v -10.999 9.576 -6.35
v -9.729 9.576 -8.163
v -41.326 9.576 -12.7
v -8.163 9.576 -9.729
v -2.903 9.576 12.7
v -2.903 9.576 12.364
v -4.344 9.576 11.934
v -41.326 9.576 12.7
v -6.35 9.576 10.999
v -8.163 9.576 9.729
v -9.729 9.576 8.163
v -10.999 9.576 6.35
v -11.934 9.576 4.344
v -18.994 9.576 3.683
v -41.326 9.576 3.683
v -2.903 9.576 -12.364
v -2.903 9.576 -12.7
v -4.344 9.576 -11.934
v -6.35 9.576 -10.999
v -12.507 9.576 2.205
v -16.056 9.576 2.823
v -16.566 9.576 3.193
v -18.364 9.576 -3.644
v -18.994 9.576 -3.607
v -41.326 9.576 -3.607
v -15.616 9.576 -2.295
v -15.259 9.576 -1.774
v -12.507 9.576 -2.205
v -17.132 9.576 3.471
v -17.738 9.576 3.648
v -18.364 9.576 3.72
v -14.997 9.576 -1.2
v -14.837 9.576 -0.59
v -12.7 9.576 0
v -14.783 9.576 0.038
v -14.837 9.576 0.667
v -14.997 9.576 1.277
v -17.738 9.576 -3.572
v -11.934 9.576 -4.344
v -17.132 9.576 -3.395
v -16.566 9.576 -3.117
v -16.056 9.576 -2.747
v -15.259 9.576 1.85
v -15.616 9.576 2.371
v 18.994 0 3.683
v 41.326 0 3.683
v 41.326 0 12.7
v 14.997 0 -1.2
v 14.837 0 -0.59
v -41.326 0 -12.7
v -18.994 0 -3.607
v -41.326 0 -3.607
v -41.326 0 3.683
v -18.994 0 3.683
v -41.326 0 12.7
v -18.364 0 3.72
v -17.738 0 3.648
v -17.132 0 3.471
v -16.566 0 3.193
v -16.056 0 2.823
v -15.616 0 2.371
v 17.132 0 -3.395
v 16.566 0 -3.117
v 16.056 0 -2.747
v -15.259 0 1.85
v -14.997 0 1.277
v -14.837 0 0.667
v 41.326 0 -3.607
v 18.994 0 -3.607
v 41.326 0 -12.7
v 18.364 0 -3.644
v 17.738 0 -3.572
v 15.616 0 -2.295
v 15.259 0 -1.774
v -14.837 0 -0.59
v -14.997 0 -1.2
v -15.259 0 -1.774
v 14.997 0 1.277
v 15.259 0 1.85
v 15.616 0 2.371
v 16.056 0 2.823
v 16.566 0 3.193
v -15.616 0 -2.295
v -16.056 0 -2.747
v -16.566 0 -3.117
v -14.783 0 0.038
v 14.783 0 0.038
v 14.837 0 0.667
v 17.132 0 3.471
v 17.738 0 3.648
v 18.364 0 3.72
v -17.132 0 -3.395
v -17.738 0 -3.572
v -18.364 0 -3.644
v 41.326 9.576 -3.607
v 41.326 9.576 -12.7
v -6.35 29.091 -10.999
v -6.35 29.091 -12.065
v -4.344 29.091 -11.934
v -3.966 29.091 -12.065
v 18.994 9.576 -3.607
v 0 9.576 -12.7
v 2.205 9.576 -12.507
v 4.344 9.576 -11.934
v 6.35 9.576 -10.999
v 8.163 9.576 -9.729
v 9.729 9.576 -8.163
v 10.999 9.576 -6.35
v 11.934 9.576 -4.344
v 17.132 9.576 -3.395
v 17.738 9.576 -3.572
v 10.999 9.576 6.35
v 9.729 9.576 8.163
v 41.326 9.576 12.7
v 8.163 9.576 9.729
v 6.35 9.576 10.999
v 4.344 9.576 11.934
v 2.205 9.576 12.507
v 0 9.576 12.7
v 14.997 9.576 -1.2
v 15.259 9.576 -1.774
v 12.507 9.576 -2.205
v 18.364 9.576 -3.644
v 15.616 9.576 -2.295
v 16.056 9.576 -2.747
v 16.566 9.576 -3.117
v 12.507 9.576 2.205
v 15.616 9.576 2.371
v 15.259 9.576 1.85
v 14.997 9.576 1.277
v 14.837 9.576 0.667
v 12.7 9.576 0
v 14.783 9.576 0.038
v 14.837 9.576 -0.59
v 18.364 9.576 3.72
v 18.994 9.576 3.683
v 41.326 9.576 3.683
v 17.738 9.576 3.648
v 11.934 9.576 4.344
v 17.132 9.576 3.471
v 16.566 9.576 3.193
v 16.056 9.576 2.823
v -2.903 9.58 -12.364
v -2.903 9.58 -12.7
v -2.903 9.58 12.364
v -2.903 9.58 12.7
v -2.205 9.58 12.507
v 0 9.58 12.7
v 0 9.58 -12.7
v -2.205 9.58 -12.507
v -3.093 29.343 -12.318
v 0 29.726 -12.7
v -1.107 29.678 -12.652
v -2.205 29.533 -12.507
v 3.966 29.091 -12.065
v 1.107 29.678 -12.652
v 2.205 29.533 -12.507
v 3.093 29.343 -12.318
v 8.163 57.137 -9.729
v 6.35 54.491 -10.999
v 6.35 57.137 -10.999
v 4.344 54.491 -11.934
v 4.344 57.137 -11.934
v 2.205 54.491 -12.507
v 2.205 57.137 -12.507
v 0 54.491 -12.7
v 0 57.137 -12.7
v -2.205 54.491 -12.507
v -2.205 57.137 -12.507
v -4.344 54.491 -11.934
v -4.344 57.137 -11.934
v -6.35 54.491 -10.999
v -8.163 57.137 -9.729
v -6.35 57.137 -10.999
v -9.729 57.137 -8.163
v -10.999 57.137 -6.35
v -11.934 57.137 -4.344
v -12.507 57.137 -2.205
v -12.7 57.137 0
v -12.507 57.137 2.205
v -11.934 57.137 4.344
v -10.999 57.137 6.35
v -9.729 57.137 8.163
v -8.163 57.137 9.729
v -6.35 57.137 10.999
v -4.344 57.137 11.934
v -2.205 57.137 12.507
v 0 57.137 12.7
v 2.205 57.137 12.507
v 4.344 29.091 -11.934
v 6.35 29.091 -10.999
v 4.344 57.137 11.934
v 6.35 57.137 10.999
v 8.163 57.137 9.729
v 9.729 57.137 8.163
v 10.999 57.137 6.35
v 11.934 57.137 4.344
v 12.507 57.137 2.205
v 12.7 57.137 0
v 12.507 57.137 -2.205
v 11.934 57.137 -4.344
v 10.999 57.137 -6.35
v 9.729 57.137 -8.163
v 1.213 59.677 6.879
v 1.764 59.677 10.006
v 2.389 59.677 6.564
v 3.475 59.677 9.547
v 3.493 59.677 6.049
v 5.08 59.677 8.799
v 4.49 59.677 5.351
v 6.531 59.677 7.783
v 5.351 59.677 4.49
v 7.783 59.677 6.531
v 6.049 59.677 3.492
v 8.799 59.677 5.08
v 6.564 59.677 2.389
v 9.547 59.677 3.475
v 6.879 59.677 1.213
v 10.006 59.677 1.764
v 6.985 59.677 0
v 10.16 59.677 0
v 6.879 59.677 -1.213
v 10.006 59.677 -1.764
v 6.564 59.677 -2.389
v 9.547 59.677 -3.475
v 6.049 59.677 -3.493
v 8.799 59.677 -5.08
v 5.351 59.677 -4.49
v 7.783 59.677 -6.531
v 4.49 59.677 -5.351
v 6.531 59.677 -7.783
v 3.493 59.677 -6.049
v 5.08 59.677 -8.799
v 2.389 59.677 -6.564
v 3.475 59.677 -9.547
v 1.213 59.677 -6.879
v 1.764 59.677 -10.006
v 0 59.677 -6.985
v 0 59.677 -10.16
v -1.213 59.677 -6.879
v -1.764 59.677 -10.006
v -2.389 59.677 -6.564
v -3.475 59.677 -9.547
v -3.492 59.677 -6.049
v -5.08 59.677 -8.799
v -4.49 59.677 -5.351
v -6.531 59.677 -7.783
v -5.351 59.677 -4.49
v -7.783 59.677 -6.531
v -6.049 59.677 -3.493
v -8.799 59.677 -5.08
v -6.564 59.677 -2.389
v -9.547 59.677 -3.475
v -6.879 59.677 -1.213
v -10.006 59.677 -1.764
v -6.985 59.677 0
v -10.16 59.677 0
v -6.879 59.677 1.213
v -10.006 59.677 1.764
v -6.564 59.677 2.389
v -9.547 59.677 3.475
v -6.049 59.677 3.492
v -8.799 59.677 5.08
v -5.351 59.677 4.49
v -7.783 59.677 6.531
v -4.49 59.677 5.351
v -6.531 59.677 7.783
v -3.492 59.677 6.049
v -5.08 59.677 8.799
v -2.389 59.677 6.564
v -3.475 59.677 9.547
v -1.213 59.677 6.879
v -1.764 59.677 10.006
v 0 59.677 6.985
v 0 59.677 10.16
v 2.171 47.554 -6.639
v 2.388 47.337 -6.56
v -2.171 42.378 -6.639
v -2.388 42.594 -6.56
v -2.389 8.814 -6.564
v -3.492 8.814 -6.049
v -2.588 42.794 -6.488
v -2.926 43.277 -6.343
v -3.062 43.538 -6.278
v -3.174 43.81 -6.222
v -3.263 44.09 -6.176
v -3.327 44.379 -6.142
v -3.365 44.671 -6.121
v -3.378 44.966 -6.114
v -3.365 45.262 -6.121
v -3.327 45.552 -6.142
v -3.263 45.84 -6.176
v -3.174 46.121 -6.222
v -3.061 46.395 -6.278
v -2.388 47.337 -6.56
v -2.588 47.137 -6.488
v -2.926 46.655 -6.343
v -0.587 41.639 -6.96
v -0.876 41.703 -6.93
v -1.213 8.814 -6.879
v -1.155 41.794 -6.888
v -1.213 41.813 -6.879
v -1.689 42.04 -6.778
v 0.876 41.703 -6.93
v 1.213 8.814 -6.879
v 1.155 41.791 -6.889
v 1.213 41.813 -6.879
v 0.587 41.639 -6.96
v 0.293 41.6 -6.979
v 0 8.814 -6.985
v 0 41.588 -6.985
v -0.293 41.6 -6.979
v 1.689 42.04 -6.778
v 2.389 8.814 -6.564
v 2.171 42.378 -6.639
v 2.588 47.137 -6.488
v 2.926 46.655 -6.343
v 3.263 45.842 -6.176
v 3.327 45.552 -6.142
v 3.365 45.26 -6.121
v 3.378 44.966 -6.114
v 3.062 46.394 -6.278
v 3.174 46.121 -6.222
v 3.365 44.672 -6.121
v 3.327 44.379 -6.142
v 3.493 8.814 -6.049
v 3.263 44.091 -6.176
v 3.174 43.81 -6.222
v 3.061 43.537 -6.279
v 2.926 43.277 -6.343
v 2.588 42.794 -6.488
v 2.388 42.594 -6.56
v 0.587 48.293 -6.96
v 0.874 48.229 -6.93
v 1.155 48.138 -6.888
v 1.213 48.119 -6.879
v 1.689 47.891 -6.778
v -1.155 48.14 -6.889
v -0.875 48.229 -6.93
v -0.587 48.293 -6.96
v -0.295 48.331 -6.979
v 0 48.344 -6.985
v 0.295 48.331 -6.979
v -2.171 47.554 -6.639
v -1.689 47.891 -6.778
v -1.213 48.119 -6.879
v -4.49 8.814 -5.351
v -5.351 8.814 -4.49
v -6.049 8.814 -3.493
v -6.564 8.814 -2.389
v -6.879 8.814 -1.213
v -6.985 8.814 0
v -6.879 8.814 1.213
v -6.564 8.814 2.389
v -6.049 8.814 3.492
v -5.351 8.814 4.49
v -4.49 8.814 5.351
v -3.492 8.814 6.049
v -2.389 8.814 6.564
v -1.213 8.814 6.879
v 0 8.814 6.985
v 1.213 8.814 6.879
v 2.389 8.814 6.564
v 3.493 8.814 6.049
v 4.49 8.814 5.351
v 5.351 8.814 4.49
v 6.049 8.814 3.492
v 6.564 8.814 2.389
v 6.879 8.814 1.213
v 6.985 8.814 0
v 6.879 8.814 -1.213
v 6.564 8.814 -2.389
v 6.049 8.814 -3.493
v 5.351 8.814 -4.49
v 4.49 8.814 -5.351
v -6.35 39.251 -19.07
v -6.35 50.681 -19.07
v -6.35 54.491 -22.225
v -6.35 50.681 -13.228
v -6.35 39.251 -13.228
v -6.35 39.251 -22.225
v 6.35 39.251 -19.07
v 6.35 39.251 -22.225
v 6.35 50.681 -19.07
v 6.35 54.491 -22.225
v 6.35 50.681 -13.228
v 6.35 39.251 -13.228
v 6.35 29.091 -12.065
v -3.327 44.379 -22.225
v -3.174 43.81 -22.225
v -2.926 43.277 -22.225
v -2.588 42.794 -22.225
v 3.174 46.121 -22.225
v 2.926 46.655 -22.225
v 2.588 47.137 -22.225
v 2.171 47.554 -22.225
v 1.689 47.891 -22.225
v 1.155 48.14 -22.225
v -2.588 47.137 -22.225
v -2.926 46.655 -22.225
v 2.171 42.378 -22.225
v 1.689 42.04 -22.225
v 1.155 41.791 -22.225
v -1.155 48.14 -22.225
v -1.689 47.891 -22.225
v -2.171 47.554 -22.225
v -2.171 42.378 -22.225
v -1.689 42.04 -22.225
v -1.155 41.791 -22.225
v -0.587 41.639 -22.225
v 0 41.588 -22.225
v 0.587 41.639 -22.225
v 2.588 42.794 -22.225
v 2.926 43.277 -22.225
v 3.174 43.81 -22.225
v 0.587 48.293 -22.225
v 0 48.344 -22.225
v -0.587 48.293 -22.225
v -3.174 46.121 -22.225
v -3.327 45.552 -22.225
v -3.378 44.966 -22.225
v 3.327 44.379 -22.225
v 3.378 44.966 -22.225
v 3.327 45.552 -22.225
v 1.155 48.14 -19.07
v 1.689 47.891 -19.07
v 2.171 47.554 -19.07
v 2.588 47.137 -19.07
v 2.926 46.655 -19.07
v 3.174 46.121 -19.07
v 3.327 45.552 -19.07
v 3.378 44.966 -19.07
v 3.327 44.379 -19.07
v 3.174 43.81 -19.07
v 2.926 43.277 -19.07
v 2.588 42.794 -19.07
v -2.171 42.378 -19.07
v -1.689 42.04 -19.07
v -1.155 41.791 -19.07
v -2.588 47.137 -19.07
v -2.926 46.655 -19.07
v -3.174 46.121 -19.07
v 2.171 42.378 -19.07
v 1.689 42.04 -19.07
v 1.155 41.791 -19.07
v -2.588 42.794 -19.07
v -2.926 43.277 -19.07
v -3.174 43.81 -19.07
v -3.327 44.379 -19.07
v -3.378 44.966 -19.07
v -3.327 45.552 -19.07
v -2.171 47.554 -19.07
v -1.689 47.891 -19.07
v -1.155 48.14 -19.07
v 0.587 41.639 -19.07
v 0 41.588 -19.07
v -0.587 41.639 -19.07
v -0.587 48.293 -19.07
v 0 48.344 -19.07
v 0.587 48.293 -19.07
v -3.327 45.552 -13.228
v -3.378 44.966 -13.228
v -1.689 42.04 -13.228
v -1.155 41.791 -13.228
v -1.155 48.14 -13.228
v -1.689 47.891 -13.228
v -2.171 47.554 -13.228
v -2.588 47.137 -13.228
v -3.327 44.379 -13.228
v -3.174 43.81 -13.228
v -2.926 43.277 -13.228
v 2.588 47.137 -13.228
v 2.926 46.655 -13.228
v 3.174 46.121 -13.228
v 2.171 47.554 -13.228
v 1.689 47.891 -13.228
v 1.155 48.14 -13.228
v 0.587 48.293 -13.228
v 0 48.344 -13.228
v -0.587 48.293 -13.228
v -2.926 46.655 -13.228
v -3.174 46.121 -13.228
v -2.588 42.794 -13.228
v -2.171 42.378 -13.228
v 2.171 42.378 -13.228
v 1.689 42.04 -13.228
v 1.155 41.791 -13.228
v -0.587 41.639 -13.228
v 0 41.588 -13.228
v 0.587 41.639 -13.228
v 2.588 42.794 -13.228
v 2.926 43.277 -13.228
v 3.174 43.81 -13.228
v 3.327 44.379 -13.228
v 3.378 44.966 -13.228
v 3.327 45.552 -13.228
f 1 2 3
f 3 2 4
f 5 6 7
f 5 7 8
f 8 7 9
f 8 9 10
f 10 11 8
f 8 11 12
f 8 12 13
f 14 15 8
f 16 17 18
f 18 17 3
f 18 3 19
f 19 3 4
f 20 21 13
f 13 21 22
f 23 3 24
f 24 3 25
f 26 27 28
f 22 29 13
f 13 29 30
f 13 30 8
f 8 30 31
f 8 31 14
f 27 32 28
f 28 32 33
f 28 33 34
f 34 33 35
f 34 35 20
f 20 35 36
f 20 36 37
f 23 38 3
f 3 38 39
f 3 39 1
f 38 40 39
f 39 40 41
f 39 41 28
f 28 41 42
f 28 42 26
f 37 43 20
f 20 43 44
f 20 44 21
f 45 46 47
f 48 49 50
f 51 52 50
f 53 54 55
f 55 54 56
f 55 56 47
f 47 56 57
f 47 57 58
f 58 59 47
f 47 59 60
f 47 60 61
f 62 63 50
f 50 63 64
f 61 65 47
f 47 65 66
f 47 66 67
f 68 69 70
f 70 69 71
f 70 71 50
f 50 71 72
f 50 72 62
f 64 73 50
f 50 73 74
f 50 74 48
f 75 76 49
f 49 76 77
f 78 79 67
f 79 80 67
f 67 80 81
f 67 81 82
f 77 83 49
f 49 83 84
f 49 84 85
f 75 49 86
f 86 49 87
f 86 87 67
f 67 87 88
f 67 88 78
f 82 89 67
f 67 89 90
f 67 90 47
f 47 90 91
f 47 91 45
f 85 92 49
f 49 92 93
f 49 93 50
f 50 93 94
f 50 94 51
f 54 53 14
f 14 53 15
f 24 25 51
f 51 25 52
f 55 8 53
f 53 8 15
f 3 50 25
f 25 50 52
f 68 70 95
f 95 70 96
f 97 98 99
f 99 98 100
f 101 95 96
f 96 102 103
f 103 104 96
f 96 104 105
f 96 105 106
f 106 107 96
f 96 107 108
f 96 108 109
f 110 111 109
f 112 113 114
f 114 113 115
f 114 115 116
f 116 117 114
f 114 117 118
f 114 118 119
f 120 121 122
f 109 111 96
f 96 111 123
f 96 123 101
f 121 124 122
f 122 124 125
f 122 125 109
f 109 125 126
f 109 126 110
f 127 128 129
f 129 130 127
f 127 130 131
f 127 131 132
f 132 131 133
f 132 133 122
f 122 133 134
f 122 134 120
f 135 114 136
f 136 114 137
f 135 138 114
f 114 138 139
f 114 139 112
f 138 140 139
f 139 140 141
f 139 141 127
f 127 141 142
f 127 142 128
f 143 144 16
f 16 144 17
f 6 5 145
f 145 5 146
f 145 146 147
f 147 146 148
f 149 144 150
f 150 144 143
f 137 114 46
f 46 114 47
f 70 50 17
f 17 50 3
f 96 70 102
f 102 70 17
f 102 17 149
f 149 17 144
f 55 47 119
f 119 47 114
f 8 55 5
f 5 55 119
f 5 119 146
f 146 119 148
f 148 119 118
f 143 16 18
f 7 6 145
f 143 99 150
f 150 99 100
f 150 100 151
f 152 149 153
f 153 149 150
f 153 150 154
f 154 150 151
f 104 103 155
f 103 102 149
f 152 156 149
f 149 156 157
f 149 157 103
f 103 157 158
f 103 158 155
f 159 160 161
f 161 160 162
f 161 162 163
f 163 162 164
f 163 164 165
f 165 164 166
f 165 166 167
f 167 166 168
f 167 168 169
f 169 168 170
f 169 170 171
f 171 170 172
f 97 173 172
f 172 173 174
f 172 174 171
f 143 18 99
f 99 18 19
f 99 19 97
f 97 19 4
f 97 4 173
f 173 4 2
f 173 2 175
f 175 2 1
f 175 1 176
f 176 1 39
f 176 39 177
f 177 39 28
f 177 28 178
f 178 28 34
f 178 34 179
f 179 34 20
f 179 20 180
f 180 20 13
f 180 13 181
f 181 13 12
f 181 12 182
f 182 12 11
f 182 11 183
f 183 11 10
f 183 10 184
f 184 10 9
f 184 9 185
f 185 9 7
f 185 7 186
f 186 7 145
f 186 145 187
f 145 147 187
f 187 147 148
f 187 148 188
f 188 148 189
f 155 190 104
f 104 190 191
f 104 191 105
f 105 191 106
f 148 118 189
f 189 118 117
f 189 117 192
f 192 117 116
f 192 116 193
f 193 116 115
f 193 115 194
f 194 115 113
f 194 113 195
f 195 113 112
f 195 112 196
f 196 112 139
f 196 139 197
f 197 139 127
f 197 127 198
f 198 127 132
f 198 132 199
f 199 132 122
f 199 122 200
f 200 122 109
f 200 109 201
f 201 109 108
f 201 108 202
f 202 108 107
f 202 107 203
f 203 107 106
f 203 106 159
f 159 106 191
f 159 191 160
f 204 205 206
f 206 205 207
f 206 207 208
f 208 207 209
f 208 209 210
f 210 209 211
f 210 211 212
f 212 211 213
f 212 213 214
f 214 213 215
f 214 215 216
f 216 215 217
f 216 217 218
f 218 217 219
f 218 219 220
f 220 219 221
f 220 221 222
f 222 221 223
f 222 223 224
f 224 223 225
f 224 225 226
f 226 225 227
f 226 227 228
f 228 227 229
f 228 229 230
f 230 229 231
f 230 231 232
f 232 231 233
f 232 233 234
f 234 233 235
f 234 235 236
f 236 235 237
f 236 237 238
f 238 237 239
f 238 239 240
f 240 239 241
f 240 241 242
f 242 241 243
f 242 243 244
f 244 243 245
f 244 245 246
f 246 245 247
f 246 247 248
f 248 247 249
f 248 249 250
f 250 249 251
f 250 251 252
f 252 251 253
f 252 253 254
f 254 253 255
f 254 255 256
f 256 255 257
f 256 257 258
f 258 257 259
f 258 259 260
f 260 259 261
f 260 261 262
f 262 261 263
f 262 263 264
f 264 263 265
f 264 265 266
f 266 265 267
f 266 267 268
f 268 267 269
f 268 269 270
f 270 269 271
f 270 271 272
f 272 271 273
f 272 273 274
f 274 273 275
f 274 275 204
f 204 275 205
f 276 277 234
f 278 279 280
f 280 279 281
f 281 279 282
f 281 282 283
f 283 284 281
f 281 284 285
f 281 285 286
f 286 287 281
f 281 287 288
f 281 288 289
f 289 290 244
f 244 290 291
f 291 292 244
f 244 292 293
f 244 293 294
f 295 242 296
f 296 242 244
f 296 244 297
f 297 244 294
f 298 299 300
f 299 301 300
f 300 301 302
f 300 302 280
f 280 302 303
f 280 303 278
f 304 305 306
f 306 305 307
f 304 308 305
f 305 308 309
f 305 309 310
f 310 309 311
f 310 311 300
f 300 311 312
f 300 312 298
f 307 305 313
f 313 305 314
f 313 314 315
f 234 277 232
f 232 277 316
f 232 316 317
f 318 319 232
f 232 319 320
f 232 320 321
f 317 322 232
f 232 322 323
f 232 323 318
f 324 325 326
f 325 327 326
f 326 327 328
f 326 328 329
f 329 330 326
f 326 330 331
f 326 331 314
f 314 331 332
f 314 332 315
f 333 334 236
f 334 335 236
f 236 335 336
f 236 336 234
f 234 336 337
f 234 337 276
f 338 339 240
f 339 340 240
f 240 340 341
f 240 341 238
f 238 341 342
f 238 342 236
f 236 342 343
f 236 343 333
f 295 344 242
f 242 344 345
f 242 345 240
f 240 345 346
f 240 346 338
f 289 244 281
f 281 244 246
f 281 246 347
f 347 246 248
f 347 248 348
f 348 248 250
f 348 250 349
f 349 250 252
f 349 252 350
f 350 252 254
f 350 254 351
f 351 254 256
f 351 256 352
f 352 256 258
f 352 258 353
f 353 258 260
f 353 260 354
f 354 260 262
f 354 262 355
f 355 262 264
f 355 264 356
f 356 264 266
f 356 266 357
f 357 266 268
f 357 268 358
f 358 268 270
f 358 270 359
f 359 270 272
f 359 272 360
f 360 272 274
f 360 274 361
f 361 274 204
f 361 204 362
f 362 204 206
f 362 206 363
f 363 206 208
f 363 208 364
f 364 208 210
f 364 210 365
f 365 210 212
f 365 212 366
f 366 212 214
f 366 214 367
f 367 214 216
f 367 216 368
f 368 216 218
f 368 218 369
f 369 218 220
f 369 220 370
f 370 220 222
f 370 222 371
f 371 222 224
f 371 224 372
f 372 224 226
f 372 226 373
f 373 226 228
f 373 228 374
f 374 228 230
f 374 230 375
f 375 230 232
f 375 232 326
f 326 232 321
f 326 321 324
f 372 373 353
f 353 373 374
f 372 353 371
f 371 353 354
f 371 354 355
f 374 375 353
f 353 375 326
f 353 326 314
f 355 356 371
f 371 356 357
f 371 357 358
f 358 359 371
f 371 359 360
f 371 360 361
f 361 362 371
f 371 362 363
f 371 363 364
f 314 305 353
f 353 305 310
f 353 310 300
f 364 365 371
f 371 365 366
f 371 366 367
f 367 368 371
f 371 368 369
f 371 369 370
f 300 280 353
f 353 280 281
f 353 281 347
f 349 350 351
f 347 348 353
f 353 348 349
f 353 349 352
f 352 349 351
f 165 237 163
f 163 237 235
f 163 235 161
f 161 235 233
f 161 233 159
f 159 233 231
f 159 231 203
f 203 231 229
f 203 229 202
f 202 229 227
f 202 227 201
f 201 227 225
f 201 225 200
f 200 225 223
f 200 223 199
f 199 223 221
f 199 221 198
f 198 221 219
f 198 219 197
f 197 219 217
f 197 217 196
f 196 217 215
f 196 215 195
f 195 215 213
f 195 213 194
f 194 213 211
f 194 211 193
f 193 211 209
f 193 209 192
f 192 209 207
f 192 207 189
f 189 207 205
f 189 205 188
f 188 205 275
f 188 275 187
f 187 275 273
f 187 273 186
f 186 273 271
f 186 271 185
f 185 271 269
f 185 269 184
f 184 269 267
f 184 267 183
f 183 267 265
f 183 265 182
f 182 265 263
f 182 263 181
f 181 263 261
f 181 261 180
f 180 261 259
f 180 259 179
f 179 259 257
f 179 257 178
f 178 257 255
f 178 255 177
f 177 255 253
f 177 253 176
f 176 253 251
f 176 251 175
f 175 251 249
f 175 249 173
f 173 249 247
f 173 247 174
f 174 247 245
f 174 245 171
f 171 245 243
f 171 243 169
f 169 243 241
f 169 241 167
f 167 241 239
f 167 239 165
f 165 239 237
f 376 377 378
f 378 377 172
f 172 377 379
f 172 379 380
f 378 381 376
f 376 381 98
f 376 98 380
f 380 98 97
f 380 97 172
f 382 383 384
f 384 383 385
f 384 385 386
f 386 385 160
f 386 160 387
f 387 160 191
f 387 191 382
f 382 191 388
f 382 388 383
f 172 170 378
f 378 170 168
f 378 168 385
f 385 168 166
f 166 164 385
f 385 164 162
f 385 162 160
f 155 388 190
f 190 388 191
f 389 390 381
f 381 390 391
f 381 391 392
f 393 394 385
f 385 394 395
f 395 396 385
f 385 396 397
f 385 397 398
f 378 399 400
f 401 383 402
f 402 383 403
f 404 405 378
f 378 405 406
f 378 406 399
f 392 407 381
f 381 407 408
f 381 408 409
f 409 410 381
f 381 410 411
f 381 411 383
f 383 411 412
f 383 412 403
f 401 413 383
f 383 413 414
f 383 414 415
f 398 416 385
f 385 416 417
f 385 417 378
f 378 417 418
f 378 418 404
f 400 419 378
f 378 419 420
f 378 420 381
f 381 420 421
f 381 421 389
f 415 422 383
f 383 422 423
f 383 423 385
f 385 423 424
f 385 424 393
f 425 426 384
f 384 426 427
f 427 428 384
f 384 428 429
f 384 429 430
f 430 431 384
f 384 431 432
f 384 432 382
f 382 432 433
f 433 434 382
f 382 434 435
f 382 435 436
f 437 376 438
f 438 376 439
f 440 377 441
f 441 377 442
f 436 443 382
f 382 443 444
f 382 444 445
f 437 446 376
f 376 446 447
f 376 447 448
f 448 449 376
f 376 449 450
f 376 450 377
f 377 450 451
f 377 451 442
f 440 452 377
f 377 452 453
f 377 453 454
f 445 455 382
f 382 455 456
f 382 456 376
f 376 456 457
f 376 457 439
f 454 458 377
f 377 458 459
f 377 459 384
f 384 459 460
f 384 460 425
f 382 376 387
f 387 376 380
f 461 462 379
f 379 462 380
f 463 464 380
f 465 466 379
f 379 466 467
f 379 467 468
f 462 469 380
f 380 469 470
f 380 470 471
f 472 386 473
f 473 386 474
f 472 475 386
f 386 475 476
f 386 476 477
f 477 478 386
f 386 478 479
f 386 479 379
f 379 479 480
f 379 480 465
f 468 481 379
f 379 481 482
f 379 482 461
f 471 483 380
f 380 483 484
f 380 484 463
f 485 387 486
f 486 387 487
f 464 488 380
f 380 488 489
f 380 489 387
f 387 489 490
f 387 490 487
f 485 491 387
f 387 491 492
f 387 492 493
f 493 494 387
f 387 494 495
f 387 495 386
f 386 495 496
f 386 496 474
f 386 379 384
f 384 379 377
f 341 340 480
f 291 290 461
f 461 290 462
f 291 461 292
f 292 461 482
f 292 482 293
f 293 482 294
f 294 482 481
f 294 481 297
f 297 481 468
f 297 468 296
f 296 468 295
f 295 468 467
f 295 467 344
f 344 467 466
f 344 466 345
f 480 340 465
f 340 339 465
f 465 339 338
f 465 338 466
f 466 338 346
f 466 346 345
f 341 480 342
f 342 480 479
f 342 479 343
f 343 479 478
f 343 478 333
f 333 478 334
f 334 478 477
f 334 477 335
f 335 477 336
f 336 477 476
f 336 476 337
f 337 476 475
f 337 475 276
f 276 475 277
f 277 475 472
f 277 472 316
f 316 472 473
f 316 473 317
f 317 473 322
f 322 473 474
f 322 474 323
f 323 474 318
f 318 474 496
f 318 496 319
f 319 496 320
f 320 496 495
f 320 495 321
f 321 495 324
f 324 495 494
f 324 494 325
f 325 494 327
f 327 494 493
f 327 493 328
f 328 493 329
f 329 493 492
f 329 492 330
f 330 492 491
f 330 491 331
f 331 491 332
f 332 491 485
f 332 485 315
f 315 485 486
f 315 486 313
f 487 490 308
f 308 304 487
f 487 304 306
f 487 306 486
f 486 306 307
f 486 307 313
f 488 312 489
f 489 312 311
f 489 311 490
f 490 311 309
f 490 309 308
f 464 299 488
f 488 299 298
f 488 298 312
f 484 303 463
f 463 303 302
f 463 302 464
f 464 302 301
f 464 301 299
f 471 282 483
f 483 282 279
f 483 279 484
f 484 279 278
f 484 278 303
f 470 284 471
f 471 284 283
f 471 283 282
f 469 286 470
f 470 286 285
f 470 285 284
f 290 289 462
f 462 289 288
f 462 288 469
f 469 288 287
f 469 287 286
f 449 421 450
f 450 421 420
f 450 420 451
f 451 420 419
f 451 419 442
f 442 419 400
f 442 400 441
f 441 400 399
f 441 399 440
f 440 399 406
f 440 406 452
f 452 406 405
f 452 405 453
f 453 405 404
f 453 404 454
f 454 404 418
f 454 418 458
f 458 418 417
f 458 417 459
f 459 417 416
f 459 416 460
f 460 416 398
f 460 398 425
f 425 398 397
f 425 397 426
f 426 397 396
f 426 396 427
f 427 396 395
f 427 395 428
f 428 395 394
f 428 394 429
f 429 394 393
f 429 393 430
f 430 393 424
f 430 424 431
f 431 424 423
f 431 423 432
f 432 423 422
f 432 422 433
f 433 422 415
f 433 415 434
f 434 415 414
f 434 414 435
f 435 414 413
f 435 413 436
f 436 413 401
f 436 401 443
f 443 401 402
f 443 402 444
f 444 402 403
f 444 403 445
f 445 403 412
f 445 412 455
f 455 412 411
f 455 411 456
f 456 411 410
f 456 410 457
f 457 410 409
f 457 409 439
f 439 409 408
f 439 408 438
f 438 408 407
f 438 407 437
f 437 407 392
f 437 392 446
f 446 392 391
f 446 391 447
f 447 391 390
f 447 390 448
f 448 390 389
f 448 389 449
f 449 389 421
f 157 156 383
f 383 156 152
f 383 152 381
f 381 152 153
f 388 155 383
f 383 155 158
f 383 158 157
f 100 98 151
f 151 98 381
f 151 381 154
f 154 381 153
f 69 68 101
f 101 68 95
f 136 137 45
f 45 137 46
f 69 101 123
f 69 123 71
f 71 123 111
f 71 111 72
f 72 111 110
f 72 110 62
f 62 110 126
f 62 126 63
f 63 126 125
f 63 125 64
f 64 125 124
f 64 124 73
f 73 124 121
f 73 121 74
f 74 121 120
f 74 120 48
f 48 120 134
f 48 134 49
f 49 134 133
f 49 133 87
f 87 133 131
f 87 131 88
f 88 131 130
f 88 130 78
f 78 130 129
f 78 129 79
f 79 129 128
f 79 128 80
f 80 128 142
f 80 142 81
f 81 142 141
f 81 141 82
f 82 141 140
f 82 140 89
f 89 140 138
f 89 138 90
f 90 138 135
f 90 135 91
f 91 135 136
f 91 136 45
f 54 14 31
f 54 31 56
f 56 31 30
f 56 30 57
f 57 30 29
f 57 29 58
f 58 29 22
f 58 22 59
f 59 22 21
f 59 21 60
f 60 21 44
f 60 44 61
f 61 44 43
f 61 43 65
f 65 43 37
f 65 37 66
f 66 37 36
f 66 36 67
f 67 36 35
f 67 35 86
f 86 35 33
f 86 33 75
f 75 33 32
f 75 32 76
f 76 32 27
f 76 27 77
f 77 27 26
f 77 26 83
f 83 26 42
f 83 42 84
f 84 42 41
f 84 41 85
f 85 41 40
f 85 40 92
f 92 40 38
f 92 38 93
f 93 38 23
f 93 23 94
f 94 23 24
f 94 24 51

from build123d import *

# Parameters (mm, degrees)
SKETCH1_W                   = 82.6516
SKETCH1_H                   = 25.4
BOSS_EXTRUDE1_DEPTH         = 9.5758
SKETCH8_W                   = 2.902818519
SKETCH8_H                   = 9.580147983
BOSS_EXTRUDE4_DEPTH         = 25.4
SKETCH10_R                  = 12.7
BOSS_EXTRUDE5_DEPTH         = 50.1015
SKETCH12_R                  = 6.985
CUT_EXTRUDE2_DEPTH          = 50.8635
CHAMFER1_SIZE               = 2.54
SKETCH14_W                  = 12.7
SKETCH14_H                  = 25.4
BOSS_EXTRUDE6_DEPTH         = 15.24
CUT_EXTRUDE3_REACH          = 81.551
SKETCH18_W                  = 5.842
SKETCH18_H                  = 11.43
F_1_4_CLEARANCE_HOLE2_D     = 6.7564
F_1_4_CLEARANCE_HOLE2_DEPTH = 20.32
F_1_4_CLEARANCE_HOLE2_TIP   = 2.029827343
CHAMFER2_SIZE               = 10.16
SKETCH2_W                   = 22.86
SKETCH2_H                   = 7.2898
CUT_EXTRUDE1_DEPTH          = 69.64351887
SKETCH23_R                  = 3.683
CUT_EXTRUDE6_DEPTH          = 69.64351887


with BuildPart() as part:
    # Sketch1 → Boss-Extrude1 (new body)
    with BuildSketch(Plane(origin=(0, 0, 0), x_dir=(1, 0, 0), z_dir=(0, 1, 0))):
        Rectangle(SKETCH1_W, SKETCH1_H)
    extrude(amount=BOSS_EXTRUDE1_DEPTH)

    # Sketch8 → Boss-Extrude4 (add, through all)
    with BuildSketch(Plane.XY.offset(12.7)):
        with Locations((-1.45140926, 4.790073991)):
            Rectangle(SKETCH8_W, SKETCH8_H)
    extrude(amount=-BOSS_EXTRUDE4_DEPTH)

    # Sketch10 → Boss-Extrude5 (add)
    with BuildSketch(Plane(origin=(0, 9.5758, 0), x_dir=(1, 0, 0), z_dir=(0, 1, 0))):
        with Locations(Location((0, 0, 0), (0, 0, 270))):
            Circle(SKETCH10_R)
    extrude(amount=BOSS_EXTRUDE5_DEPTH)

    # Sketch12 → Cut-Extrude2 (cut)
    with BuildSketch(Plane(origin=(0, 59.6773, 0), x_dir=(1, 0, 0), z_dir=(0, 1, 0))):
        with Locations(Location((0, 0, 0), (0, 0, 270))):
            Circle(SKETCH12_R)
    extrude(amount=-CUT_EXTRUDE2_DEPTH, mode=Mode.SUBTRACT)

    # Chamfer1
    chamfer1_edges = [part.edges().sort_by_distance(p)[0] for p in [
        (0, 59.6773, -12.7),
    ]]
    chamfer(chamfer1_edges, length=CHAMFER1_SIZE)

    # Sketch14 → Boss-Extrude6 (add)
    with BuildSketch(Plane.XY.offset(-6.985)):
        with Locations((0, 41.790845474)):
            Rectangle(SKETCH14_W, SKETCH14_H)
    extrude(amount=-BOSS_EXTRUDE6_DEPTH)

    # Sketch18 → Cut-Extrude3 (cut, up to next)
    with BuildSketch(Plane(origin=(6.35, 0, 0), x_dir=(0, 0, -1), z_dir=(1, 0, 0)), mode=Mode.PRIVATE) as cut_extrude3_sk1:
        with Locations((16.149395763, 44.965845474)):
            Rectangle(SKETCH18_W, SKETCH18_H)
    cut_extrude3_tool1 = extrude(cut_extrude3_sk1.sketch, amount=-CUT_EXTRUDE3_REACH, mode=Mode.PRIVATE) & part.part
    add(cut_extrude3_tool1.solids().sort_by_distance((6.35, 44.965845, -16.149396))[0], mode=Mode.SUBTRACT)

    # 1/4 Clearance Hole2
    with Locations(Plane(origin=(0, 0, -22.225), x_dir=(-1, 0, 0), z_dir=(0, 0, -1))):
        with Locations((0, 44.965845474)):
            Hole(F_1_4_CLEARANCE_HOLE2_D / 2, depth=F_1_4_CLEARANCE_HOLE2_DEPTH)
            with Locations((0, 0, -(F_1_4_CLEARANCE_HOLE2_DEPTH + F_1_4_CLEARANCE_HOLE2_TIP / 2))):  # 118° drill point
                Cone(0, F_1_4_CLEARANCE_HOLE2_D / 2, F_1_4_CLEARANCE_HOLE2_TIP, mode=Mode.SUBTRACT)

    # Chamfer2
    # the kernel refuses this chamfer: 10.16 mm, written as the material it takes off along each edge
    with BuildSketch(Plane(origin=(32.478299158, 29.090845474, -22.225), x_dir=(0, -0.027495876610586265, 0.9996219169112968), z_dir=(-1, 0, 0))) as chamfer2_piece_1_section:
        Polygon((CHAMFER2_SIZE * 0.999621916911, CHAMFER2_SIZE * 0.0274958766106), (-CHAMFER2_SIZE * 0.0274958766106, CHAMFER2_SIZE * 0.999621916911), (0, 0), align=None)
    chamfer2_piece_1 = extrude(amount=64.956598315, mode=Mode.PRIVATE)
    chamfer2_piece_1 = chamfer2_piece_1 - Plane(origin=(0, 32.444576681, 0), x_dir=(0, 0, 1), z_dir=(0, -1, 0)) * Cylinder(12.7, 171, mode=Mode.PRIVATE)
    add(chamfer2_piece_1, mode=Mode.SUBTRACT)

    # Sketch2 → Cut-Extrude1 (cut, through all)
    with BuildSketch(Plane(origin=(0, 9.5758, 0), x_dir=(1, 0, 0), z_dir=(0, 1, 0))):
        with Locations((29.8958, -0.0381)):
            Rectangle(SKETCH2_W, SKETCH2_H)
    cut_extrude1 = extrude(amount=-CUT_EXTRUDE1_DEPTH, mode=Mode.SUBTRACT)

    # Sketch23 → Cut-Extrude6 (cut, through all)
    with BuildSketch(Plane(origin=(0, 9.5758, 0), x_dir=(1, 0, 0), z_dir=(0, 1, 0))):
        with Locations((18.4658, -0.0381)):
            Circle(SKETCH23_R)
    cut_extrude6 = extrude(amount=-CUT_EXTRUDE6_DEPTH, mode=Mode.SUBTRACT)

    # Mirror1: Cut-Extrude1, Cut-Extrude6 across plane
    add(cut_extrude1.mirror(Plane(origin=(0, 0, 0), x_dir=(0, 0, 1), z_dir=(1, 0, 0))), mode=Mode.SUBTRACT)
    add(cut_extrude6.mirror(Plane(origin=(0, 0, 0), x_dir=(0, 0, 1), z_dir=(1, 0, 0))), mode=Mode.SUBTRACT)


solid = part.part
